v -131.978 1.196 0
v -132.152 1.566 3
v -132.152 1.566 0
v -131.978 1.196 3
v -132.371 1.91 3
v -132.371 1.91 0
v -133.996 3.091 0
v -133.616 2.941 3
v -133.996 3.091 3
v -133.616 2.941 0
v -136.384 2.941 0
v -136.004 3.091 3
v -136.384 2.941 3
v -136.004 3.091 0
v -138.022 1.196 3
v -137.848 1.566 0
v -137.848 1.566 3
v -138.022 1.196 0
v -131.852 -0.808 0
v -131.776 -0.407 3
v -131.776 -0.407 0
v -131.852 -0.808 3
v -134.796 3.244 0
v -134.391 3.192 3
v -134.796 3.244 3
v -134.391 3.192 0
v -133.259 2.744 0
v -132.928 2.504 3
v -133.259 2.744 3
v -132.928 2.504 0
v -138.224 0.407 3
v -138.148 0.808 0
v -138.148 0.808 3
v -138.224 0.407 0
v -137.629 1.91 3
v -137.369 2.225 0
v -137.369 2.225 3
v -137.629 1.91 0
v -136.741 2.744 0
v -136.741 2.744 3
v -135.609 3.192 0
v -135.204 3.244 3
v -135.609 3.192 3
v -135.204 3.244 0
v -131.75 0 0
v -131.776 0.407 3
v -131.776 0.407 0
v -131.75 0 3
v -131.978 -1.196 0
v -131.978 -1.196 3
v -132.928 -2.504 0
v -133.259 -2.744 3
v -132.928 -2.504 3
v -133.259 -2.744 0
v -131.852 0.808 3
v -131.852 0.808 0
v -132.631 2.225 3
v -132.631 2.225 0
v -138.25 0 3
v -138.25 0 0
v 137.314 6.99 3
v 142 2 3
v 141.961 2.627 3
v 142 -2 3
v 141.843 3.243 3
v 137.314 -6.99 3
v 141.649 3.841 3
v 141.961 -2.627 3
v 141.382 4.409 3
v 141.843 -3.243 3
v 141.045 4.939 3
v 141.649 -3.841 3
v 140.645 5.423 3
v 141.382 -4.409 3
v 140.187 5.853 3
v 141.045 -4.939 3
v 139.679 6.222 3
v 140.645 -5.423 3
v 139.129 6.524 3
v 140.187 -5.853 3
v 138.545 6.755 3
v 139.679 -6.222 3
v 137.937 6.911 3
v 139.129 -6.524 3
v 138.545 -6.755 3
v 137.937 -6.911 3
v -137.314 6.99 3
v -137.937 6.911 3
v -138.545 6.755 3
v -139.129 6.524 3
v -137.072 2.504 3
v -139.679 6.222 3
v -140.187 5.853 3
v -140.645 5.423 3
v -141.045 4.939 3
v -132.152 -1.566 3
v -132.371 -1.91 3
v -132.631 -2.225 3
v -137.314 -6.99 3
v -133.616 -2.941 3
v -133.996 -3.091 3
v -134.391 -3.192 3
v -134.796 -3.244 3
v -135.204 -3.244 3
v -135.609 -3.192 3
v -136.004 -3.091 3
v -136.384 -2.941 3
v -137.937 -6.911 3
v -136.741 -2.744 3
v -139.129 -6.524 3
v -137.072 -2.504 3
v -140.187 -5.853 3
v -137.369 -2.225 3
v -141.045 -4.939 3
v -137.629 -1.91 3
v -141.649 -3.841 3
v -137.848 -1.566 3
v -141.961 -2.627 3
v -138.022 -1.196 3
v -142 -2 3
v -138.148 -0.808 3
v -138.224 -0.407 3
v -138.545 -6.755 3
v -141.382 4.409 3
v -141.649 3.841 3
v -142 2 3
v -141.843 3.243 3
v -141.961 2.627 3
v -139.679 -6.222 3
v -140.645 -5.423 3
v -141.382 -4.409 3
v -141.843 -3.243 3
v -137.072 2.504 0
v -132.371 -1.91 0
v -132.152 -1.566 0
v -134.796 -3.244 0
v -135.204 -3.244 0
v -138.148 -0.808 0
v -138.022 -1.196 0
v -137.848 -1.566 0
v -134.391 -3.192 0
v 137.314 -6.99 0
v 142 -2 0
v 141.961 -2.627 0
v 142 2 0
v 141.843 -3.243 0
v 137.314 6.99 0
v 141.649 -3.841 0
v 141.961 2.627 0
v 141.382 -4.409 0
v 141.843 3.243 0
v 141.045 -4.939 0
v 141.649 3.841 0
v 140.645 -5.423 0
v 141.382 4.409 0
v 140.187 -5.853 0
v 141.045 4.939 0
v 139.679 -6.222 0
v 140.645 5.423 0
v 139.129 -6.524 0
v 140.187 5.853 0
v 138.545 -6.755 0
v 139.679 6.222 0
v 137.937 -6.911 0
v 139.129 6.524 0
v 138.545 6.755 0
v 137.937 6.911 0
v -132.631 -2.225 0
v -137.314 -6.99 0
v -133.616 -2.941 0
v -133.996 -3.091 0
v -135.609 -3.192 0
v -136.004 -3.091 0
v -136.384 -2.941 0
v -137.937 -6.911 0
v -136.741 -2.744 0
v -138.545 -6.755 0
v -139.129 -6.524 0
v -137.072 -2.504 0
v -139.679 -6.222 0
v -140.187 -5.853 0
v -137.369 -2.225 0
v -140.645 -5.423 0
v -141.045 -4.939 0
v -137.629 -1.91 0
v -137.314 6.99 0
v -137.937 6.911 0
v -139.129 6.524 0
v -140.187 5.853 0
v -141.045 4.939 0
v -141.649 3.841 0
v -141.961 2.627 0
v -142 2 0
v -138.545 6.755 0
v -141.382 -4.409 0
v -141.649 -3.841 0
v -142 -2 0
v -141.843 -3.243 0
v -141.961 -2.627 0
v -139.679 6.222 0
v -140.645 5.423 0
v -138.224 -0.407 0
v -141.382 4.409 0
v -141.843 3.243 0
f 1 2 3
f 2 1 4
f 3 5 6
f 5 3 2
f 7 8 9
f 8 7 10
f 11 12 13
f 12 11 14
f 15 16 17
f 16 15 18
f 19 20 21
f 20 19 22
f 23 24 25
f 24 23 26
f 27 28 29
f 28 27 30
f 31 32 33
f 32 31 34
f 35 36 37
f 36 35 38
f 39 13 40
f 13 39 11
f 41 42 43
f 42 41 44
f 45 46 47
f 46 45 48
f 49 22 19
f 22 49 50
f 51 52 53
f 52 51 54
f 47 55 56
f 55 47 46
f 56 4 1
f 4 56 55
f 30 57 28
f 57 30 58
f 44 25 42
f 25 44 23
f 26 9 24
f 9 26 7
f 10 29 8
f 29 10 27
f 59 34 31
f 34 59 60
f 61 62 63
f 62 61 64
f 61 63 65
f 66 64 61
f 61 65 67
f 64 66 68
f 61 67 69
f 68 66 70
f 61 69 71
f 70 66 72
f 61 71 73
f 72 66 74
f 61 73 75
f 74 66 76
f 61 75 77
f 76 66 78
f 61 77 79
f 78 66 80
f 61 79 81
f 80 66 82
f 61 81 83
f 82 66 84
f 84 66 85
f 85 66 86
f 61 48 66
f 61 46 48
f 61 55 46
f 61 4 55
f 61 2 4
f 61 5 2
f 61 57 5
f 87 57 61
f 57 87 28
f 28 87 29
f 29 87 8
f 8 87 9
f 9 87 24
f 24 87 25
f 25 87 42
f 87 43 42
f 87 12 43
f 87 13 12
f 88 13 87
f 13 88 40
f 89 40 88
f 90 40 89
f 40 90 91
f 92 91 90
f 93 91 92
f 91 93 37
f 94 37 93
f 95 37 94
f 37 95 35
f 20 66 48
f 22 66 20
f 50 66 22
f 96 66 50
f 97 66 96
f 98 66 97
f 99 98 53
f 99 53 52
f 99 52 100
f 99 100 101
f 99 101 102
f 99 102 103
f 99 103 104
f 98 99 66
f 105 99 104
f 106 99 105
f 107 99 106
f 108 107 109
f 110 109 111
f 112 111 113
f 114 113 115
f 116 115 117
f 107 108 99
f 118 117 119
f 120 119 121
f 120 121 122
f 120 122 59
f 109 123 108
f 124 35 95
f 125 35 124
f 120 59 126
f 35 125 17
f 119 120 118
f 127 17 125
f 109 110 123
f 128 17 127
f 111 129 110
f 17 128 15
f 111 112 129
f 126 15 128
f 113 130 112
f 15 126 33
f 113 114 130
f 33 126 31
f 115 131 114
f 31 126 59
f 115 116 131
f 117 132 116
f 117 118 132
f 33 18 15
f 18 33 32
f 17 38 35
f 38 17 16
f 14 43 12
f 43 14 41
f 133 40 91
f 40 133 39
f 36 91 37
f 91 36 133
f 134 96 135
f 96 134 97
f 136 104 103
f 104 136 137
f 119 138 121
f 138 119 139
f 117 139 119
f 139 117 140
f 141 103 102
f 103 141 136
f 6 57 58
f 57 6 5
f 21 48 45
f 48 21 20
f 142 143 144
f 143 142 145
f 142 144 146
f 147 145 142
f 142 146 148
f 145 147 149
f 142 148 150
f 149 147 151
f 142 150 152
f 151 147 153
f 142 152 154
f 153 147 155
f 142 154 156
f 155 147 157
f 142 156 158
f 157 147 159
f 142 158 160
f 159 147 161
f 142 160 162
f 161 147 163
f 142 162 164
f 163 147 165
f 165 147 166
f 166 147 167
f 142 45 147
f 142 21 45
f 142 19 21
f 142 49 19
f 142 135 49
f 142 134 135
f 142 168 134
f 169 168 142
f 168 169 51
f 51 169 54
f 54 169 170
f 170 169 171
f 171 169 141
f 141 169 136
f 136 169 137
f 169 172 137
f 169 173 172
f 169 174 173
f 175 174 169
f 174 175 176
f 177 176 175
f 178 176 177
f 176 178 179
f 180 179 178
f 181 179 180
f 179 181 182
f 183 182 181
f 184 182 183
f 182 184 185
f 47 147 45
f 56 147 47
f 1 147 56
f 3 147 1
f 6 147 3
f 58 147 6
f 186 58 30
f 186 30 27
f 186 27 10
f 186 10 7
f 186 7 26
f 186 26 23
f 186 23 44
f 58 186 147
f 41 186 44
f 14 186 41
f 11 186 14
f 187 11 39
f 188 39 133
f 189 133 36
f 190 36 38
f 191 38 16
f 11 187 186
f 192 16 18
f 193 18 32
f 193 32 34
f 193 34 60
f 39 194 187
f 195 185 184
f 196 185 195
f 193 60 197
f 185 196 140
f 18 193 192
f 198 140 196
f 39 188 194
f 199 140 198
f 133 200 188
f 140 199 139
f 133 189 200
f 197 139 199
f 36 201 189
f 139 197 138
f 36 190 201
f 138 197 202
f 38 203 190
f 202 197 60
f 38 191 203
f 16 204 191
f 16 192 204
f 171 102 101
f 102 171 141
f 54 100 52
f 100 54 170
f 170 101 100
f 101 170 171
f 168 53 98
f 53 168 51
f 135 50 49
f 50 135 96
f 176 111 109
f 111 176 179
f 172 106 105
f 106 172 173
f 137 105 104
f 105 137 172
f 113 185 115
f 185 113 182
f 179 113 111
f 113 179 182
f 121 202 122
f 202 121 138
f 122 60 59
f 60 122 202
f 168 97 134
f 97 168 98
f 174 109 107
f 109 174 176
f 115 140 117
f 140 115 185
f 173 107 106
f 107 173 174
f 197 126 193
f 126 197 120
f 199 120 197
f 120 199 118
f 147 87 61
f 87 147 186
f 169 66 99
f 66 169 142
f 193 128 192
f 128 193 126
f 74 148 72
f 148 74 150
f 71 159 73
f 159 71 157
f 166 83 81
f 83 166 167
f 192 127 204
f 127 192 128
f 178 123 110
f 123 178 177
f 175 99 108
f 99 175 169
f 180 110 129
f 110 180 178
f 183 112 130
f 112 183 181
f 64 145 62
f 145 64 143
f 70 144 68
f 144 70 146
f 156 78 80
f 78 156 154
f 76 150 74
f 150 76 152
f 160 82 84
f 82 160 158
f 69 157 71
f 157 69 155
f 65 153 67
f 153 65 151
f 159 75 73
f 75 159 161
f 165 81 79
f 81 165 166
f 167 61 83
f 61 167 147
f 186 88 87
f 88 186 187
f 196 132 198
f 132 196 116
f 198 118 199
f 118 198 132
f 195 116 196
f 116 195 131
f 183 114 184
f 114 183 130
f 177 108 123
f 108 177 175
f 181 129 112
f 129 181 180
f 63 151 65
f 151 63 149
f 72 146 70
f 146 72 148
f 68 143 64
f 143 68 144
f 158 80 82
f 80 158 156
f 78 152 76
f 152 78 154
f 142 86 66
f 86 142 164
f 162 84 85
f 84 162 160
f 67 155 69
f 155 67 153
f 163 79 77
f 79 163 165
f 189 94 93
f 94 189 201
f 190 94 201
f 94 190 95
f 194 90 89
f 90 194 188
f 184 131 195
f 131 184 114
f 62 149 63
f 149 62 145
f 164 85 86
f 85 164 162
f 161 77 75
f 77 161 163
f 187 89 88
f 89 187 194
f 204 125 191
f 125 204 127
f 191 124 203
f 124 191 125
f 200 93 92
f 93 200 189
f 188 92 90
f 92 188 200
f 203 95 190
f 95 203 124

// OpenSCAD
$fn = 50;


difference() {
	union() {
		hull() {
			translate(v = [-137.0000000000, 2.0000000000, 0]) {
				cylinder(h = 3, r = 5);
			}
			translate(v = [137.0000000000, 2.0000000000, 0]) {
				cylinder(h = 3, r = 5);
			}
			translate(v = [-137.0000000000, -2.0000000000, 0]) {
				cylinder(h = 3, r = 5);
			}
			translate(v = [137.0000000000, -2.0000000000, 0]) {
				cylinder(h = 3, r = 5);
			}
		}
	}
	union() {
		translate(v = [-135.0000000000, 0.0000000000, 0]) {
			cylinder(h = 3, r = 3.2500000000);
		}
		translate(v = [-135.0000000000, 0.0000000000, 0]) {
			cylinder(h = 3, r = 1.8000000000);
		}
		translate(v = [-135.0000000000, 0.0000000000, 0]) {
			cylinder(h = 3, r = 1.8000000000);
		}
		translate(v = [-135.0000000000, 0.0000000000, 0]) {
			cylinder(h = 3, r = 1.8000000000);
		}
	}
}
